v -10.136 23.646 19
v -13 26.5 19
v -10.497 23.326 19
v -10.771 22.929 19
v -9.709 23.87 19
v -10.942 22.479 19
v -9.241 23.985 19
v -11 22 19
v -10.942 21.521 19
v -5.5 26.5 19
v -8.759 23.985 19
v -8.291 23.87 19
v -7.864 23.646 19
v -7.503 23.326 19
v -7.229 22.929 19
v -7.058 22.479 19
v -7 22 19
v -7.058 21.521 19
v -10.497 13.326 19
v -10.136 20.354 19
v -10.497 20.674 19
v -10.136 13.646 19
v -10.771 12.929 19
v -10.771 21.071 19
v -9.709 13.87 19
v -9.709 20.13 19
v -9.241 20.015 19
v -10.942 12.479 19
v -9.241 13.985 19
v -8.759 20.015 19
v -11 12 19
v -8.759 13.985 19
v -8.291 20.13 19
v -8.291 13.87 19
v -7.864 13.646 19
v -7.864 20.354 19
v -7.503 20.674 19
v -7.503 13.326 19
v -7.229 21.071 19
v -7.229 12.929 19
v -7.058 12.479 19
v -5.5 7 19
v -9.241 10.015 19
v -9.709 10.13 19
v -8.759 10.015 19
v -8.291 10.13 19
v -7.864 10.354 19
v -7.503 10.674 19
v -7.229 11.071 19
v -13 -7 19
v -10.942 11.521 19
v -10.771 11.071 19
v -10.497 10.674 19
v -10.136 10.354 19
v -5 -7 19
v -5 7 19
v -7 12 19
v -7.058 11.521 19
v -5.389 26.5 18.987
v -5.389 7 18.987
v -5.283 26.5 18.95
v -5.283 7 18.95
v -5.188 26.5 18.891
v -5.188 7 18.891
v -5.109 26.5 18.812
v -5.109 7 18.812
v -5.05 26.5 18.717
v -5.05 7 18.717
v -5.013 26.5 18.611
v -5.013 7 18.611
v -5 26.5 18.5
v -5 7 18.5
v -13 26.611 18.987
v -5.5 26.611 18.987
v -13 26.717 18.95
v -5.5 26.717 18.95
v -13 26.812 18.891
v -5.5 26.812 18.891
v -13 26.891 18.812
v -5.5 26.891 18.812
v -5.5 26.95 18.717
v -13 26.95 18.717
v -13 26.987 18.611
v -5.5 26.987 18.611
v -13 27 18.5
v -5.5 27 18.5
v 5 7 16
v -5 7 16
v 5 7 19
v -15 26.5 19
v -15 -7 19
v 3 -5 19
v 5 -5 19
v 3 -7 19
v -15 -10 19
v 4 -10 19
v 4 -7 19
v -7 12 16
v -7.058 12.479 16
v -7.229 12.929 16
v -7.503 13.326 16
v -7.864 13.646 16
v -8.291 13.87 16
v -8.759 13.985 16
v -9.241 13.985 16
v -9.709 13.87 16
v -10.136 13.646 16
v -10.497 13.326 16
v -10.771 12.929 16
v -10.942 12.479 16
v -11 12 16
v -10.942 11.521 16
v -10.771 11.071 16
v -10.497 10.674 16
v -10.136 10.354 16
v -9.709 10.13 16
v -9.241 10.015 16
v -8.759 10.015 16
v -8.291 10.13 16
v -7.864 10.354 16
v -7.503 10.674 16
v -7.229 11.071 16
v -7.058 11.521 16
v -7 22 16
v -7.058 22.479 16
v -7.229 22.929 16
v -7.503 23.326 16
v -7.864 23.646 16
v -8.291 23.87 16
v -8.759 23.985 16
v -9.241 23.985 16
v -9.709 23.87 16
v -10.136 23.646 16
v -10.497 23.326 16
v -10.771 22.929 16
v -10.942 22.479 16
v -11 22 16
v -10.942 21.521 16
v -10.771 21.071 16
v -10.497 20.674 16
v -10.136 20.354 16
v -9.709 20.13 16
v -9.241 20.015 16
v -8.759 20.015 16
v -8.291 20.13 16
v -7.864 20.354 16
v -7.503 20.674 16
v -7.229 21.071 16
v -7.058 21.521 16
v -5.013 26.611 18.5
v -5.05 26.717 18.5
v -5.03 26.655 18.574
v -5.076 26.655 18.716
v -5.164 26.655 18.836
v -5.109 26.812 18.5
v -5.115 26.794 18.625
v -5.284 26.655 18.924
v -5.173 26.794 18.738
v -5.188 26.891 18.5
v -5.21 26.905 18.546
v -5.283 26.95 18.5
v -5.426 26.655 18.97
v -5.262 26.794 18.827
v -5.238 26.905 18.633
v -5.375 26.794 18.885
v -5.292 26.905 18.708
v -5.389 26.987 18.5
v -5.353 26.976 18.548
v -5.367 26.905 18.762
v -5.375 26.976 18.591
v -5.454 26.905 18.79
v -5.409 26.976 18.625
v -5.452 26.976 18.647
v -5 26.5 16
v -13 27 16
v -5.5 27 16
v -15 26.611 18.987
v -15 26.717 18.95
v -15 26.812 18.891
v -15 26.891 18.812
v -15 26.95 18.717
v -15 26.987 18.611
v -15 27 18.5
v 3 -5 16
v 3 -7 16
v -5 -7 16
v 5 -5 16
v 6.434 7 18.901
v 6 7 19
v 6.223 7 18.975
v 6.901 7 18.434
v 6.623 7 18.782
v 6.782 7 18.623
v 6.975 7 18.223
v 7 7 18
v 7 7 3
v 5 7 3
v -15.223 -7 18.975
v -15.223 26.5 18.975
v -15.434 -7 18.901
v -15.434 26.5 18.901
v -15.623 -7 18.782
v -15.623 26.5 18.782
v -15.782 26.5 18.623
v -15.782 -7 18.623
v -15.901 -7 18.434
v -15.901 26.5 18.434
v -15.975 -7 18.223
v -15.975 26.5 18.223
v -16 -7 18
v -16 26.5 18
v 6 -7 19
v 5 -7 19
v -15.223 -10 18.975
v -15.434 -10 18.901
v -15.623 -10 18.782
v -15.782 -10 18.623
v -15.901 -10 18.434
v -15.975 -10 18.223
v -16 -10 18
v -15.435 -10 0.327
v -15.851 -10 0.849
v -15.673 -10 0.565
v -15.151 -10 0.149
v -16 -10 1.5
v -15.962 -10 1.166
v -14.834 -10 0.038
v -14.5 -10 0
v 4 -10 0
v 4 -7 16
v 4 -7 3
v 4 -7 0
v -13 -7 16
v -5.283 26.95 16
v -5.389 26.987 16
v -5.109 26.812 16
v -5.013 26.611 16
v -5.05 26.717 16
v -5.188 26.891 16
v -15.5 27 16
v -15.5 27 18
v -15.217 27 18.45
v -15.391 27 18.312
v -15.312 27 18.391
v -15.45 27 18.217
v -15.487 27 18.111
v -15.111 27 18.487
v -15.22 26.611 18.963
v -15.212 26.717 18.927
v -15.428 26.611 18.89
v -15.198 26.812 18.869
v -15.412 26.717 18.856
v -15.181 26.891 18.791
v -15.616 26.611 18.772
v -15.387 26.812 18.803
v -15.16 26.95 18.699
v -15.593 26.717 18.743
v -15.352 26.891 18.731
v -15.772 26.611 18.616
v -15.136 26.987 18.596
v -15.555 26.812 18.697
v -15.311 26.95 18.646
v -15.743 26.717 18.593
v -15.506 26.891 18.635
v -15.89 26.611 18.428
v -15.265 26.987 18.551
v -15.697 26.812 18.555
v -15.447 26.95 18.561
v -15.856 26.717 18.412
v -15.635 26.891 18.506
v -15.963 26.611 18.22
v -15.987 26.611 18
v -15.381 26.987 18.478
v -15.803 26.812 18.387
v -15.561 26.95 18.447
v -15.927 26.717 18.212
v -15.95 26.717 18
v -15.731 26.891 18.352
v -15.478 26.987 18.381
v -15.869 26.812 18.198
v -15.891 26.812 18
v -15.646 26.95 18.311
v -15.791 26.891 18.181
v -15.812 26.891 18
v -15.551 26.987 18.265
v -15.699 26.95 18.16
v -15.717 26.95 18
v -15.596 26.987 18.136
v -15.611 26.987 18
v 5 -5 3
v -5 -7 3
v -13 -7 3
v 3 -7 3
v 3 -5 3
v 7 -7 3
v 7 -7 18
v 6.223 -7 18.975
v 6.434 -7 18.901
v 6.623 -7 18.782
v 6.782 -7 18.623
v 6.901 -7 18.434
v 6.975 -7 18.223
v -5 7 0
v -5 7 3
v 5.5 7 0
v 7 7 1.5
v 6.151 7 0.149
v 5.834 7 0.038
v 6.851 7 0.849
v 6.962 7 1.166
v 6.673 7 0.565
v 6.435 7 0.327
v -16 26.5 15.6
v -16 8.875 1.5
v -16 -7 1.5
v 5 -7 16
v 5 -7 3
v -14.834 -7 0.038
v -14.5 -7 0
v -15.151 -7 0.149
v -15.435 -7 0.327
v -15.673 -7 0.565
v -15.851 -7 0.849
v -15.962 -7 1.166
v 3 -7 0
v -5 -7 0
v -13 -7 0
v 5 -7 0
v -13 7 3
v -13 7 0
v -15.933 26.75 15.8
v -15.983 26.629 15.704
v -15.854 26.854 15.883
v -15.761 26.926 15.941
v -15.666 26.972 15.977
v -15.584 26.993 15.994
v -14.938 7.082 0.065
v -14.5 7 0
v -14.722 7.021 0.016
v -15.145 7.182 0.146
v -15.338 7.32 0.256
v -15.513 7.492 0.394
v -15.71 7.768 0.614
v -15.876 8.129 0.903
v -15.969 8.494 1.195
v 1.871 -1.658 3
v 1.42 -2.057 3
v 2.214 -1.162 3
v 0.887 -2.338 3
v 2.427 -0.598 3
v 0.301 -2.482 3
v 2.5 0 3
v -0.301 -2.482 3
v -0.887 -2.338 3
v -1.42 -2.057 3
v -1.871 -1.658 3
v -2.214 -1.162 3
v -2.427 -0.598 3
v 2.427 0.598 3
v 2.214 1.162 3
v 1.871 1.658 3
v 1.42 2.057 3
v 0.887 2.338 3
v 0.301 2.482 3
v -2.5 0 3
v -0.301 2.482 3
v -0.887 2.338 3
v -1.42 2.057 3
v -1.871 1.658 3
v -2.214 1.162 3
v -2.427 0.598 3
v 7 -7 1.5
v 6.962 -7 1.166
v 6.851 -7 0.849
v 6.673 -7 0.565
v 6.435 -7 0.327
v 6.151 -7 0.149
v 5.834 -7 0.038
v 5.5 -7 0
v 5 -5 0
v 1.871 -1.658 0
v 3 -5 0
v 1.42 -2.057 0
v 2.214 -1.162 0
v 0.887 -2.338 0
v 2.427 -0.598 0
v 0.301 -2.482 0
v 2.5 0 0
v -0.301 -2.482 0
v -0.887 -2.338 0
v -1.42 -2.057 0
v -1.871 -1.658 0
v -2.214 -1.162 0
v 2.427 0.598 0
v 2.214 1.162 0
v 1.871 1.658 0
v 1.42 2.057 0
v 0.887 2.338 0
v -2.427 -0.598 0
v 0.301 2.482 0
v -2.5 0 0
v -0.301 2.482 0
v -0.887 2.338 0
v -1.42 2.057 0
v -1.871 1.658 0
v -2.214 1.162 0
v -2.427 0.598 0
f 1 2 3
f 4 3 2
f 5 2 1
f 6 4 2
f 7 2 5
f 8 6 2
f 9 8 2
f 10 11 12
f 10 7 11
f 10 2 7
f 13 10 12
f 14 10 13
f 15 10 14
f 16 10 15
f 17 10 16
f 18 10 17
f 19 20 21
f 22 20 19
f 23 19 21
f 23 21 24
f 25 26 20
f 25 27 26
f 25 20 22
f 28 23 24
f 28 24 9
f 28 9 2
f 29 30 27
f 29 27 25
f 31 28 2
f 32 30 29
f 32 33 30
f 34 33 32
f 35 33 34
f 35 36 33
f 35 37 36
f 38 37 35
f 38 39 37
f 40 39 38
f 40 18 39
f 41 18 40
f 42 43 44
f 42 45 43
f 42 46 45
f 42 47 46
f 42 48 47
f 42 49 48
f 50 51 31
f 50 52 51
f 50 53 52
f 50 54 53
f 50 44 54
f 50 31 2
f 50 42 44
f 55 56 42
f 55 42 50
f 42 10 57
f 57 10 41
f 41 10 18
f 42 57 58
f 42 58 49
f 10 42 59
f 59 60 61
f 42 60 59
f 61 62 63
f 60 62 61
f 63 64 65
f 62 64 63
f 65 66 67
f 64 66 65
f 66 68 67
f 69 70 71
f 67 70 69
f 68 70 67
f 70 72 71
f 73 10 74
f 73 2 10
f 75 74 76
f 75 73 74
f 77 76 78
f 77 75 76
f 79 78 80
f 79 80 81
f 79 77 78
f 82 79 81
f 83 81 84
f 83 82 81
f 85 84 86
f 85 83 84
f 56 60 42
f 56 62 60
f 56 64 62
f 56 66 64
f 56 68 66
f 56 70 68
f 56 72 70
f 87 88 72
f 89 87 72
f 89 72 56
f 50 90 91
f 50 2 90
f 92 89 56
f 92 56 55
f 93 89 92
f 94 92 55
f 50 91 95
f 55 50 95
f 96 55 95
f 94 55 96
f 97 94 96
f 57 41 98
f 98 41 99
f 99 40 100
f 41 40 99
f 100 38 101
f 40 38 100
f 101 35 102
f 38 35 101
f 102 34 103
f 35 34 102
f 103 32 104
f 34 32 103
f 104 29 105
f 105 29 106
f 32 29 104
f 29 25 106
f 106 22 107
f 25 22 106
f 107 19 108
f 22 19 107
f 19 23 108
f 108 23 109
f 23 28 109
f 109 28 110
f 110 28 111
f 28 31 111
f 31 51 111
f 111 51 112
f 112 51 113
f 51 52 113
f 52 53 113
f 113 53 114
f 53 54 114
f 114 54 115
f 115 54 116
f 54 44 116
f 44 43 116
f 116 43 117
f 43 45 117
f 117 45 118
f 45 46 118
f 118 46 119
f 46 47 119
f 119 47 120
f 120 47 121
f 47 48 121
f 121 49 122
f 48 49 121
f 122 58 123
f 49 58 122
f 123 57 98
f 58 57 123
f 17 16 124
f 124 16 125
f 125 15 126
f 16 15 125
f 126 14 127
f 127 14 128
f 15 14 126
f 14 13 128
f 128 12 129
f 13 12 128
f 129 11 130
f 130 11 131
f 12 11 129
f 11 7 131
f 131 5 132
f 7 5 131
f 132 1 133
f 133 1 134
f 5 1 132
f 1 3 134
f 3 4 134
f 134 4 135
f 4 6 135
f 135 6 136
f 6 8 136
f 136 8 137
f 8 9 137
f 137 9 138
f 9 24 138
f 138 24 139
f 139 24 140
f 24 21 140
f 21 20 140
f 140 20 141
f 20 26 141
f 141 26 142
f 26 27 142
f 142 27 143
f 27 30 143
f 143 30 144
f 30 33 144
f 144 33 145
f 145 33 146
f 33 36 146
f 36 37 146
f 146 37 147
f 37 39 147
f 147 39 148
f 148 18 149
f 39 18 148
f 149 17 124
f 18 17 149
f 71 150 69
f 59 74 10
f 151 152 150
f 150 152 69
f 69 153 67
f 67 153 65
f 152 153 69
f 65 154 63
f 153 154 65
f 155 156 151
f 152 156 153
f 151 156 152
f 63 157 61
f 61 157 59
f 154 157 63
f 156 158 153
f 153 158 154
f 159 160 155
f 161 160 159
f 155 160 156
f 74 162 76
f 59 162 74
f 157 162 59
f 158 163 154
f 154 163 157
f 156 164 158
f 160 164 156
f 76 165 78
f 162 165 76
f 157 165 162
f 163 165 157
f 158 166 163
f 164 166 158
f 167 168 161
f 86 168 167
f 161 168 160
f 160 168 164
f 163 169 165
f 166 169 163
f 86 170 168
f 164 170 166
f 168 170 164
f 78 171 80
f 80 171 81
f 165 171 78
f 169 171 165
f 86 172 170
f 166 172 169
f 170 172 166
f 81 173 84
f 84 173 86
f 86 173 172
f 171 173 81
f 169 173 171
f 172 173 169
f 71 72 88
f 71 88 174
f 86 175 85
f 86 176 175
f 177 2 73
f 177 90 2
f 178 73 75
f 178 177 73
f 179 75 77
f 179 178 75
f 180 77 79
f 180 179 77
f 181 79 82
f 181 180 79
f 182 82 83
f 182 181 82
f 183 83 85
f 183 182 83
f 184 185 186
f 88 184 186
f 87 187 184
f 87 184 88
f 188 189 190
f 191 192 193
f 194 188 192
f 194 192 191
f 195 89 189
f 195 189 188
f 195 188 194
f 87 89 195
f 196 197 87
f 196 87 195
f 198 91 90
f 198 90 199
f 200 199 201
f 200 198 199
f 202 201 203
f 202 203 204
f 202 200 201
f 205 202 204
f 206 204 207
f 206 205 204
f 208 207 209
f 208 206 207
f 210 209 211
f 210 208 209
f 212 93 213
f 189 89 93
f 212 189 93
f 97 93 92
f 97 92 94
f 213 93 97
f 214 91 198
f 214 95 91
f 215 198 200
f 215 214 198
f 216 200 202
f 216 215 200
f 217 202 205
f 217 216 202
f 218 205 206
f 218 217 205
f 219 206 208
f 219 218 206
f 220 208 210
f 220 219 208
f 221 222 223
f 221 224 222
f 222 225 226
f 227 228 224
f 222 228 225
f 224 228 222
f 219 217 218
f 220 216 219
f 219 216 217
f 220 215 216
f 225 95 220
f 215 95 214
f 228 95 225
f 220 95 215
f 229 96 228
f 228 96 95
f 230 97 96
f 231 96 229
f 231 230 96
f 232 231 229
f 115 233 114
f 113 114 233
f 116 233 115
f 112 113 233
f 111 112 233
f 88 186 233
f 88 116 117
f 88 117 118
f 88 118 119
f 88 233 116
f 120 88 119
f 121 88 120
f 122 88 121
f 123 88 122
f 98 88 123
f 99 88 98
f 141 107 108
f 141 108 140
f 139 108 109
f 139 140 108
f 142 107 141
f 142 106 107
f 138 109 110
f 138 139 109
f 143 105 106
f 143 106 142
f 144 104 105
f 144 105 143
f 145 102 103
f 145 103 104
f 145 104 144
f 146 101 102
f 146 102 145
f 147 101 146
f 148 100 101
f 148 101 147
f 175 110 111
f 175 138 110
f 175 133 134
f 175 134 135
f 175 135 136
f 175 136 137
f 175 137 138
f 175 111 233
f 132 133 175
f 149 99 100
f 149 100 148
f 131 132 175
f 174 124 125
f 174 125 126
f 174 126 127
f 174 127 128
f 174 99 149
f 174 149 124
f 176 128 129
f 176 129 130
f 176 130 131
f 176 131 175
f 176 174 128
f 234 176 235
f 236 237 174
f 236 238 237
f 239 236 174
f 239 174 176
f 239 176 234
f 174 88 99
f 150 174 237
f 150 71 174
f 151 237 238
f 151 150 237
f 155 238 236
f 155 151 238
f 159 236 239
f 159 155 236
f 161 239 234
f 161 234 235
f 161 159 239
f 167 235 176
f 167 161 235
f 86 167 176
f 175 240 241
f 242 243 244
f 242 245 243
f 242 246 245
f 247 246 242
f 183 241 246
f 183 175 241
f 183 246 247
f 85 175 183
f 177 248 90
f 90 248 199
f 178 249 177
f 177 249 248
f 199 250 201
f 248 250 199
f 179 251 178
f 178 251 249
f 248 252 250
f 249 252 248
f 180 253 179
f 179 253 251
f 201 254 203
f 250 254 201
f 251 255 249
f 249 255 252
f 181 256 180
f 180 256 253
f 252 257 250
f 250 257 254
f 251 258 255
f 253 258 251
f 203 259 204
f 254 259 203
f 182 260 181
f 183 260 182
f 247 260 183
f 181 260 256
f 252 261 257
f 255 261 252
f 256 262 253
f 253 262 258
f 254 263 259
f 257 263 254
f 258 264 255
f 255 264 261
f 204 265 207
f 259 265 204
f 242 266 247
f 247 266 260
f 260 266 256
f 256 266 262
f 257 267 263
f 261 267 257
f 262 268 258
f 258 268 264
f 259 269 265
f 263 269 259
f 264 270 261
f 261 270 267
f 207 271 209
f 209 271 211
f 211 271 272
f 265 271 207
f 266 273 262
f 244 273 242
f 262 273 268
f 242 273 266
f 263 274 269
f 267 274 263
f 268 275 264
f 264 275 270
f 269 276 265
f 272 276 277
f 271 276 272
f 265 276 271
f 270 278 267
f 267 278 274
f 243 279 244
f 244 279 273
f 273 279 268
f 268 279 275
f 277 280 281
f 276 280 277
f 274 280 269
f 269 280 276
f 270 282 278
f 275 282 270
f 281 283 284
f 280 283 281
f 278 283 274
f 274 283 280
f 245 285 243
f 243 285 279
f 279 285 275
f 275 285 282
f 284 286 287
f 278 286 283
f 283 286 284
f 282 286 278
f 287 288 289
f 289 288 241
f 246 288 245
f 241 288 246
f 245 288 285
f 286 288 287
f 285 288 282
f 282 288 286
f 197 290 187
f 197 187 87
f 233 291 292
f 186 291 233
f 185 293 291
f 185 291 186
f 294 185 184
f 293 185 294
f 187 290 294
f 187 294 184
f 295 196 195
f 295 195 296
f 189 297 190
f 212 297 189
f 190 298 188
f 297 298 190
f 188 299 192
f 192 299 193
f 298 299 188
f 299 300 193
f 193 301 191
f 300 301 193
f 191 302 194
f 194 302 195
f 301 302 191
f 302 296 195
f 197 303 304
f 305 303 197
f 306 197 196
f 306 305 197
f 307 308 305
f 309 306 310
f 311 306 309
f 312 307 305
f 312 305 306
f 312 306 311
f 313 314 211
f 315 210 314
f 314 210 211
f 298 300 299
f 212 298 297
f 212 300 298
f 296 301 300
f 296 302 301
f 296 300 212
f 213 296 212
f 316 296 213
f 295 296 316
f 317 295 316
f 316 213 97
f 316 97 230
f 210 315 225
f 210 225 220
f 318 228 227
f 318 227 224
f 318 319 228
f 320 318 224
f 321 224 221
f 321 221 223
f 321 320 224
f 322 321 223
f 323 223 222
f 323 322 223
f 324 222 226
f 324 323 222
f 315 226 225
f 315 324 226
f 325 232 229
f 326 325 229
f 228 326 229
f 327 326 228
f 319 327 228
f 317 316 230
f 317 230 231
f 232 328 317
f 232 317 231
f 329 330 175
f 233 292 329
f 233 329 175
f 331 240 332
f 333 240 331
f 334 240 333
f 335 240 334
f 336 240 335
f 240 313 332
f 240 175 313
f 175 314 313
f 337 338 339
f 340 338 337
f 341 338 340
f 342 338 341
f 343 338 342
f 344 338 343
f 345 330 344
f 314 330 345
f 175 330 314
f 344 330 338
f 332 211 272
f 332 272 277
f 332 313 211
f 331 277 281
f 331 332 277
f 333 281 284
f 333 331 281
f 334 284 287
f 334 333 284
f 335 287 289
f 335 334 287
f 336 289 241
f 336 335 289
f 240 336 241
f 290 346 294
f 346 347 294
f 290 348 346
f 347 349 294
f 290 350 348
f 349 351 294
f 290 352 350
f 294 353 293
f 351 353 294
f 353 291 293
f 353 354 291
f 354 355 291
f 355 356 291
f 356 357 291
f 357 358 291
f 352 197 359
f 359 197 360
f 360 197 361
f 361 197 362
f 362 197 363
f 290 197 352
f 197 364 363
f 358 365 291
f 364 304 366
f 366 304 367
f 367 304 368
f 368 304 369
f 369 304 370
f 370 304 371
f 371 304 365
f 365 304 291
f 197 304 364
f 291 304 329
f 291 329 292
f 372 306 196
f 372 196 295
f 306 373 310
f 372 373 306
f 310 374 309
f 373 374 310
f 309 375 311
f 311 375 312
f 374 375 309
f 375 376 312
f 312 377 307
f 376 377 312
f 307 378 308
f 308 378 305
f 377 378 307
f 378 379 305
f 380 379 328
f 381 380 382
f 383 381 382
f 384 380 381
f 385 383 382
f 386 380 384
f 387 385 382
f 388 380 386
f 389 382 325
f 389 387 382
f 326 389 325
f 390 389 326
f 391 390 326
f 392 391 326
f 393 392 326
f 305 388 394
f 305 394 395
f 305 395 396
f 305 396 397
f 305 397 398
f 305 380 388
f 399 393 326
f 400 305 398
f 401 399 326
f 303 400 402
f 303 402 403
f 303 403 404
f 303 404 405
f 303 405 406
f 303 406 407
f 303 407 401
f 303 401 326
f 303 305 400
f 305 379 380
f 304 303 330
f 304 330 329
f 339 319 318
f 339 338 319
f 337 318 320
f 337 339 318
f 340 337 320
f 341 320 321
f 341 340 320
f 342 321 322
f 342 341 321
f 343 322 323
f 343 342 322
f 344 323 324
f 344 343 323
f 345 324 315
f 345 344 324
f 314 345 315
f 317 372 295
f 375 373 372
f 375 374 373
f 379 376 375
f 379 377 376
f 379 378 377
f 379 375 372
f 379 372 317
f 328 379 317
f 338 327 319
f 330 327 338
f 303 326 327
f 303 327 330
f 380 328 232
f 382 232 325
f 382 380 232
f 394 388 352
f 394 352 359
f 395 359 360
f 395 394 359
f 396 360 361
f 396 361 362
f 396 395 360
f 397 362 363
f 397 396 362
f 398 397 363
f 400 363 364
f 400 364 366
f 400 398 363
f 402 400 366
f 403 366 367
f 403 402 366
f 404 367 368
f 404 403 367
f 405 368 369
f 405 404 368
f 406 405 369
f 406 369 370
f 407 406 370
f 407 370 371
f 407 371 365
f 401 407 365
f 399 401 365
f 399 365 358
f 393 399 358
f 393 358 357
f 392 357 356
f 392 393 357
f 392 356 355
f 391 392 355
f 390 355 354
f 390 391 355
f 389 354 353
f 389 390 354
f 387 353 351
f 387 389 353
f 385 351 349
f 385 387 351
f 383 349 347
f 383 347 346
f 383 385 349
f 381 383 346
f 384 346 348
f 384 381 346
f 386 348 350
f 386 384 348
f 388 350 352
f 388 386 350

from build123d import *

# Parameters (mm, degrees)
SKETCH_W     = 12
SKETCH_H     = 14
SKETCH_R     = 2.5
PAD_DEPTH    = 3
SKETCH001_W  = 2
SKETCH001_H  = 14
PAD001_DEPTH = 16
SKETCH002_W  = 14
SKETCH002_H  = 3
PAD008_DEPTH = 10
SKETCH004_W  = 14
SKETCH004_H  = 3
PAD004_DEPTH = 8
SKETCH003_W  = 34
SKETCH003_H  = 3
PAD009_DEPTH = 8
SKETCH006_R  = 2
POCKET_DEPTH = 19.001
PAD005_DEPTH = 3
SKETCH008_W  = 20
SKETCH008_H  = 19
PAD006_DEPTH = 3
SKETCH009_W  = 2
SKETCH009_H  = 19
PAD007_DEPTH = 2
FILLET_R     = 1.5
FILLET001_R  = 1.5
FILLET002_R  = 1
FILLET003_R  = 1
FILLET004_R  = 0.5
FILLET005_R  = 0.5


with BuildPart() as part:
    # Sketch → Pad (new body)
    with BuildSketch(Plane.XY):
        with Locations((1, 0)):
            Rectangle(SKETCH_W, SKETCH_H)
        Circle(SKETCH_R, mode=Mode.SUBTRACT)
    extrude(amount=PAD_DEPTH)

    # Sketch001 (on Face7 of Pad) → Pad001 (join)
    with BuildSketch(Plane.XY.offset(3)):
        with Locations((6, 0)):
            Rectangle(SKETCH001_W, SKETCH001_H)
    extrude(amount=PAD001_DEPTH)

    # Sketch002 (on Face10 of Pad001) → Pad008 (join)
    with BuildSketch(Plane(origin=(5, 0, 0), x_dir=(0, -1, 0), z_dir=(-1, 0, 0))):
        with Locations((0, 17.5)):
            Rectangle(SKETCH002_W, SKETCH002_H)
    extrude(amount=PAD008_DEPTH)

    # Sketch004 → Pad004 (join)
    with BuildSketch(Plane(origin=(-5, 0, 0), x_dir=(0, -1, 0), z_dir=(-1, 0, 0))):
        with Locations((0, 1.5)):
            Rectangle(SKETCH004_W, SKETCH004_H)
    extrude(amount=PAD004_DEPTH)

    # Sketch003 → Pad009 (join)
    with BuildSketch(Plane(origin=(-5, 0, 0), x_dir=(0, -1, 0), z_dir=(-1, 0, 0))):
        with Locations((-10, 17.5)):
            Rectangle(SKETCH003_W, SKETCH003_H)
    extrude(amount=PAD009_DEPTH)

    # Sketch006 → Pocket (cut, through all)
    with BuildSketch(Plane.XY.offset(19)):
        with Locations((-9, 22)):
            Circle(SKETCH006_R)
        with Locations((-9, 12)):
            Circle(SKETCH006_R)
    extrude(amount=-POCKET_DEPTH, mode=Mode.SUBTRACT)

    # Sketch007 (on Face26 of Pocket) → Pad005 (join)
    with BuildSketch(Plane(origin=(-13, 0, 0), x_dir=(0, -1, 0), z_dir=(-1, 0, 0))):
        Polygon((-27, 19), (7, 19), (7, 0), (-7, 0), (-27, 16), align=None)
    extrude(amount=PAD005_DEPTH)

    # Sketch008 (on Face10 of Pad005) → Pad006 (join)
    with BuildSketch(Plane.XZ.offset(7)):
        with Locations((-6, 9.5)):
            Rectangle(SKETCH008_W, SKETCH008_H)
    extrude(amount=PAD006_DEPTH)

    # Sketch009 (on Face15 of Pad006) → Pad007 (join)
    with BuildSketch(Plane(origin=(5, 0, 0), x_dir=(0, -1, 0), z_dir=(-1, 0, 0))):
        with Locations((6, 9.5)):
            Rectangle(SKETCH009_W, SKETCH009_H)
    extrude(amount=PAD007_DEPTH)

    # Fillet
    fillet_edges = [part.edges().sort_by_distance(p)[0] for p in [
        (7, 0, 0),
    ]]
    fillet(fillet_edges, radius=FILLET_R)

    # Fillet001
    fillet001_edges = [part.edges().sort_by_distance(p)[0] for p in [
        (-16, 0, 0),
    ]]
    fillet(fillet001_edges, radius=FILLET001_R)

    # Fillet002
    fillet002_edges = [part.edges().sort_by_distance(p)[0] for p in [
        (7, 0, 19),
    ]]
    fillet(fillet002_edges, radius=FILLET002_R)

    # Fillet003
    fillet003_edges = [part.edges().sort_by_distance(p)[0] for p in [
        (-16, 10, 19),
    ]]
    fillet(fillet003_edges, radius=FILLET003_R)

    # Fillet004
    fillet004_edges = [part.edges().sort_by_distance(p)[0] for p in [
        (-5, 17, 19),
    ]]
    fillet(fillet004_edges, radius=FILLET004_R)

    # Fillet005
    fillet005_edges = [part.edges().sort_by_distance(p)[0] for p in [
        (-14, 27, 19),
        (-9.25, 27, 19),
    ]]
    fillet(fillet005_edges, radius=FILLET005_R)


solid = part.part
